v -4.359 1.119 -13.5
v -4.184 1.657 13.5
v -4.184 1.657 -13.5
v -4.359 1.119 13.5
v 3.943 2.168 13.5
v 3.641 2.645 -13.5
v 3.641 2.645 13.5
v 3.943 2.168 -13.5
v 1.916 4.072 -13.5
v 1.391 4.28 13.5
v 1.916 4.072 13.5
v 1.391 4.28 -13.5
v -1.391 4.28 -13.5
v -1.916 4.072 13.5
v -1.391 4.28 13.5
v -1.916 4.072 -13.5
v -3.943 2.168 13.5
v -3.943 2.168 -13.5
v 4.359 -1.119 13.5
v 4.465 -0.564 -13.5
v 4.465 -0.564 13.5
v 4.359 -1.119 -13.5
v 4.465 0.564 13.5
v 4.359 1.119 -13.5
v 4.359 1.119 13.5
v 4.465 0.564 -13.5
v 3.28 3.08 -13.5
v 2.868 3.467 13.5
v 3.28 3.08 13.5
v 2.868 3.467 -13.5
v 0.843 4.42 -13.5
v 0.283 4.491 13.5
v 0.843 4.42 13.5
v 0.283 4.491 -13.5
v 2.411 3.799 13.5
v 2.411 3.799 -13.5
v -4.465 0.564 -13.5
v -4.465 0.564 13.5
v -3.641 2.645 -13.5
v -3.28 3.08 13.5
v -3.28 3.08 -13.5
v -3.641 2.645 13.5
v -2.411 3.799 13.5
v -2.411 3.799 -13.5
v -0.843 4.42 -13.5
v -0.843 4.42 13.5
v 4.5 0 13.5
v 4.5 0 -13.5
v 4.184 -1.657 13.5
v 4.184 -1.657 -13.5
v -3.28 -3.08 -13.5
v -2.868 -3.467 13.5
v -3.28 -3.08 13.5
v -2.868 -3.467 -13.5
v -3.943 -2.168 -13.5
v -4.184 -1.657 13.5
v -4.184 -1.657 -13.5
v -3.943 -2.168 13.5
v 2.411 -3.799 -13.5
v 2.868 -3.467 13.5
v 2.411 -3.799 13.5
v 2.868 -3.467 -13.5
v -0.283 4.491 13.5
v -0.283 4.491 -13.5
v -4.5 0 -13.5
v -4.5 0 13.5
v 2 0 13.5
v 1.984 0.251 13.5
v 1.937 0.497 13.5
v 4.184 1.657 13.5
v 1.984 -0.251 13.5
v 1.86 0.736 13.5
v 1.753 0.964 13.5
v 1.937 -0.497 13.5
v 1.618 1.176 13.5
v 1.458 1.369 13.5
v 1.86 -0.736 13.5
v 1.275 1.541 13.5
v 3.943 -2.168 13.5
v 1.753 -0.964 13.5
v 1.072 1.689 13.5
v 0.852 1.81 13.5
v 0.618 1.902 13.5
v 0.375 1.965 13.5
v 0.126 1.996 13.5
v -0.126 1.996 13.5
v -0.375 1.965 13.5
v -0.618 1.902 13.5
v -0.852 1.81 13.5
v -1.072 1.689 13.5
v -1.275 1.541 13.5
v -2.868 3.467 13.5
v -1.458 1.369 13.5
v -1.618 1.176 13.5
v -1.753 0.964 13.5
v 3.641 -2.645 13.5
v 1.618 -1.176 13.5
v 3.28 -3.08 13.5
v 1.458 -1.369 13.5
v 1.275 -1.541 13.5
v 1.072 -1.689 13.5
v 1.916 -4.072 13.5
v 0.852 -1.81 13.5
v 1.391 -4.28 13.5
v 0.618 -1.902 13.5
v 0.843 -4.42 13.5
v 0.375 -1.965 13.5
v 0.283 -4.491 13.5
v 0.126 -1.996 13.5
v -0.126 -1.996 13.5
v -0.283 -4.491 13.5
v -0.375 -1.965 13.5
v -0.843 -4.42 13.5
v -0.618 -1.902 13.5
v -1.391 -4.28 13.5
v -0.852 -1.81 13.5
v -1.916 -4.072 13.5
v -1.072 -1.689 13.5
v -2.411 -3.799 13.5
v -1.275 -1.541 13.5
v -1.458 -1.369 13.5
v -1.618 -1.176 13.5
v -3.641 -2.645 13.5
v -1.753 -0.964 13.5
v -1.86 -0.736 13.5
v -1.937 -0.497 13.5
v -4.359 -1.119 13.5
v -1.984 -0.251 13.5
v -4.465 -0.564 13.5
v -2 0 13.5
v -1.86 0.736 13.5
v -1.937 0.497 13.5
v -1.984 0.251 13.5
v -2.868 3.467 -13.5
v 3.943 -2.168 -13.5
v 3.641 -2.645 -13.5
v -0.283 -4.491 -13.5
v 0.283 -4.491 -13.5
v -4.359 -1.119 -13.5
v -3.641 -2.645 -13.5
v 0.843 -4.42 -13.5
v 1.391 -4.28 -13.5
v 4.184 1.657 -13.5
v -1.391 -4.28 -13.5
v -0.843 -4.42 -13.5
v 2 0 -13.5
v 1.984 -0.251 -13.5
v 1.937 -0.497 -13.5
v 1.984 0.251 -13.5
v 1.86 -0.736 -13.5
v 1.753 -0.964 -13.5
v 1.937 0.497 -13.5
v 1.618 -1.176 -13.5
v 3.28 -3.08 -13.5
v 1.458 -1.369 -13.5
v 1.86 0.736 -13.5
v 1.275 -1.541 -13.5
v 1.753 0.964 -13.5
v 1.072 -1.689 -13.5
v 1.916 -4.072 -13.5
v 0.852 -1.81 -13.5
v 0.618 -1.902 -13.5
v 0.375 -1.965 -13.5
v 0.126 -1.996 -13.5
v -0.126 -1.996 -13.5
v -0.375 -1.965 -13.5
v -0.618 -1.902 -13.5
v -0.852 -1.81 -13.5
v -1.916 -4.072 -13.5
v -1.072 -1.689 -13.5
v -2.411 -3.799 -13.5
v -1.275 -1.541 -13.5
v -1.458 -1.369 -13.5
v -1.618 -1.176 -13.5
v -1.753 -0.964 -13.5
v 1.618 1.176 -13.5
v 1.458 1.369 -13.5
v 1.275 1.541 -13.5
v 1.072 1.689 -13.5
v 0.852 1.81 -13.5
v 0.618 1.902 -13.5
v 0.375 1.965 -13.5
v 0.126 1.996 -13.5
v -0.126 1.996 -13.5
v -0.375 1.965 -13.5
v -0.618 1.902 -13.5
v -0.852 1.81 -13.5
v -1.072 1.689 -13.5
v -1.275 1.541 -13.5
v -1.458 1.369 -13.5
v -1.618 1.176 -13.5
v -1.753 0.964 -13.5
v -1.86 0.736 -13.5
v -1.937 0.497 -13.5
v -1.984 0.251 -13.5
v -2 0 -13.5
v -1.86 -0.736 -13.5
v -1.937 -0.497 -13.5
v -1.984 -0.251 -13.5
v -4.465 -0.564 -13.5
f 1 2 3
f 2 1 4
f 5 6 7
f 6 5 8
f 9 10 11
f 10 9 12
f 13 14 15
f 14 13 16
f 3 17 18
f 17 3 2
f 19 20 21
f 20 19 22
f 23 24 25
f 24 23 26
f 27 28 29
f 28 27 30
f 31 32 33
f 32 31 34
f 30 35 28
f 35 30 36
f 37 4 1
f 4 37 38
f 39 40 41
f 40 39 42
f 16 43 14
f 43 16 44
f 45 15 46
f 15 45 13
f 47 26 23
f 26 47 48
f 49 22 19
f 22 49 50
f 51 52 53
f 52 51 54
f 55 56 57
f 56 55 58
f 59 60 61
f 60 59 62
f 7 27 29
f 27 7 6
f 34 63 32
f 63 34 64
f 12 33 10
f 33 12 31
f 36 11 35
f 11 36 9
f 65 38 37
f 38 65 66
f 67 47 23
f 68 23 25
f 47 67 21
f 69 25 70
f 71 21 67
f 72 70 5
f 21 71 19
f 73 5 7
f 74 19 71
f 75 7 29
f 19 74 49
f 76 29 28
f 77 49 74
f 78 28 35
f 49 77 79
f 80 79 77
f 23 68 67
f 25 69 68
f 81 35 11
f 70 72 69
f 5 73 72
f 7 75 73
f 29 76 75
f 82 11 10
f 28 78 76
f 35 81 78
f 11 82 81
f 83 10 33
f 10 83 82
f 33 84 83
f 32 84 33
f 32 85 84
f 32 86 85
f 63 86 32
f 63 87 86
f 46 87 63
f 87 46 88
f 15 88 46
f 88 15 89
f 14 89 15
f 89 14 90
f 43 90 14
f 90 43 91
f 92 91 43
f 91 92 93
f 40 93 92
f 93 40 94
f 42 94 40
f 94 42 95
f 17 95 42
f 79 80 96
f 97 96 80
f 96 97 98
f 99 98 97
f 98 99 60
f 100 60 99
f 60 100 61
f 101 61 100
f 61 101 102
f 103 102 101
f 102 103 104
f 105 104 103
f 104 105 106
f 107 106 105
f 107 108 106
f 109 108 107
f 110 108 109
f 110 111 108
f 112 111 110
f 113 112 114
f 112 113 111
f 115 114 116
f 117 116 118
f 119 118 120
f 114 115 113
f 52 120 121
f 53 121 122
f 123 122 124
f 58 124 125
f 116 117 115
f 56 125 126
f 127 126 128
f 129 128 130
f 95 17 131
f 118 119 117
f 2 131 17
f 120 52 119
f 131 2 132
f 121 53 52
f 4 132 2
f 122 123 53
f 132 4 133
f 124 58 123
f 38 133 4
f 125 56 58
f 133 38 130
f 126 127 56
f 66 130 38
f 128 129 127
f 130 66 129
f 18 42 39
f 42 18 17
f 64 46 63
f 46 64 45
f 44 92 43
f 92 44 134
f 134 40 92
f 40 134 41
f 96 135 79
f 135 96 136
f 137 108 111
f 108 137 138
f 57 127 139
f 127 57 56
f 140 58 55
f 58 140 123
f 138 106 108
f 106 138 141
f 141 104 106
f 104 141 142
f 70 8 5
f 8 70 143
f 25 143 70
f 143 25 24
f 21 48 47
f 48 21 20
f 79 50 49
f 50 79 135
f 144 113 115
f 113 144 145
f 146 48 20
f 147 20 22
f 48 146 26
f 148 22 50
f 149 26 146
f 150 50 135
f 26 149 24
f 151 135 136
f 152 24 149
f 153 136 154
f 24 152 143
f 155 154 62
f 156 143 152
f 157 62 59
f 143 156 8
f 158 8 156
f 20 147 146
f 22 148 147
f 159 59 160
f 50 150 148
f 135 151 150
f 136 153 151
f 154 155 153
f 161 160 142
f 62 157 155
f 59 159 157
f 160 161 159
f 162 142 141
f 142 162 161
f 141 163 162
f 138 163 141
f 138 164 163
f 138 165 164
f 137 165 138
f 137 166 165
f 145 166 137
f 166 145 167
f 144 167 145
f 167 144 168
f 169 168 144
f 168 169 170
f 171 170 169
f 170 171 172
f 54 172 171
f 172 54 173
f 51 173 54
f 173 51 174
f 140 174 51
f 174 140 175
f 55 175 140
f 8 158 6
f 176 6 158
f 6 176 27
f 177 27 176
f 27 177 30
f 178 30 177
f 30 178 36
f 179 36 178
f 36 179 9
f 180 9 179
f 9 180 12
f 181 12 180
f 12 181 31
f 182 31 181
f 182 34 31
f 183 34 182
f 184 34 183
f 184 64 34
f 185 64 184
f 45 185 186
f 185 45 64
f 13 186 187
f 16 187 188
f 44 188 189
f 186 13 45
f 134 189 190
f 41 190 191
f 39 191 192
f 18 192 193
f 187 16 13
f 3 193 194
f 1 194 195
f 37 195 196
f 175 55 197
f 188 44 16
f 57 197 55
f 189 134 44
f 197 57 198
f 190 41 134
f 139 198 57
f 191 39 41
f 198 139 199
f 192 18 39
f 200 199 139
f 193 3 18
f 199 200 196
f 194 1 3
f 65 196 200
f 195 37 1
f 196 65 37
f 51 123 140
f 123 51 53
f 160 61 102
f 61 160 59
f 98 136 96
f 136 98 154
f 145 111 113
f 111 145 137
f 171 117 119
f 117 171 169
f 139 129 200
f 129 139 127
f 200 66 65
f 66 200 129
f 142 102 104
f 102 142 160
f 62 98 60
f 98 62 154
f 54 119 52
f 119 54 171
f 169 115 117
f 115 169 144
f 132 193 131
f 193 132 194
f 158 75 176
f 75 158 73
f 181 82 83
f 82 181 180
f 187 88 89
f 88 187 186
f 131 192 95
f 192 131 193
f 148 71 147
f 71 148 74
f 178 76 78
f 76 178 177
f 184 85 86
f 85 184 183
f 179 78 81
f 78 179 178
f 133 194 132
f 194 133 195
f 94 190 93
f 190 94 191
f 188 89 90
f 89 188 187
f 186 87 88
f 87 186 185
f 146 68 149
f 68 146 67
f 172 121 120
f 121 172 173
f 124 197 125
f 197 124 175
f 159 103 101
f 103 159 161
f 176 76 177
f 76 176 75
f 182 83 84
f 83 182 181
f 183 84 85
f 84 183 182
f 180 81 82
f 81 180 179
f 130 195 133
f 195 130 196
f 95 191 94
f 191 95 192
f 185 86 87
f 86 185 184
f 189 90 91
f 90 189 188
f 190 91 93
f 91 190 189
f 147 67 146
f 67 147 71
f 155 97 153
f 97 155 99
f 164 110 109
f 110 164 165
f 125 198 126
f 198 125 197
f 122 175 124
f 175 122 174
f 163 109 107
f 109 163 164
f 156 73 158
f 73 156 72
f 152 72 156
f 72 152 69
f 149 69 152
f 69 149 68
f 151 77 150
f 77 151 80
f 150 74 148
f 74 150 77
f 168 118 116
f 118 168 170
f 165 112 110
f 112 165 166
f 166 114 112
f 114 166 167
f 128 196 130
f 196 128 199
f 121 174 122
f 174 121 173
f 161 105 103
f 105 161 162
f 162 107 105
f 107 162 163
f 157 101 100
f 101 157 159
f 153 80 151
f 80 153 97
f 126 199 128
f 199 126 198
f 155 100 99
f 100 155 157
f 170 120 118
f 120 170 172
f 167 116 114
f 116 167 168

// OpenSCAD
$fn = 50;


difference() {
	union() {
		translate(v = [0, 0, -13.5000000000]) {
			cylinder(h = 27, r = 4.5000000000);
		}
	}
	union() {
		translate(v = [0, 0, -100.0000000000]) {
			cylinder(h = 200, r = 2);
		}
	}
}
